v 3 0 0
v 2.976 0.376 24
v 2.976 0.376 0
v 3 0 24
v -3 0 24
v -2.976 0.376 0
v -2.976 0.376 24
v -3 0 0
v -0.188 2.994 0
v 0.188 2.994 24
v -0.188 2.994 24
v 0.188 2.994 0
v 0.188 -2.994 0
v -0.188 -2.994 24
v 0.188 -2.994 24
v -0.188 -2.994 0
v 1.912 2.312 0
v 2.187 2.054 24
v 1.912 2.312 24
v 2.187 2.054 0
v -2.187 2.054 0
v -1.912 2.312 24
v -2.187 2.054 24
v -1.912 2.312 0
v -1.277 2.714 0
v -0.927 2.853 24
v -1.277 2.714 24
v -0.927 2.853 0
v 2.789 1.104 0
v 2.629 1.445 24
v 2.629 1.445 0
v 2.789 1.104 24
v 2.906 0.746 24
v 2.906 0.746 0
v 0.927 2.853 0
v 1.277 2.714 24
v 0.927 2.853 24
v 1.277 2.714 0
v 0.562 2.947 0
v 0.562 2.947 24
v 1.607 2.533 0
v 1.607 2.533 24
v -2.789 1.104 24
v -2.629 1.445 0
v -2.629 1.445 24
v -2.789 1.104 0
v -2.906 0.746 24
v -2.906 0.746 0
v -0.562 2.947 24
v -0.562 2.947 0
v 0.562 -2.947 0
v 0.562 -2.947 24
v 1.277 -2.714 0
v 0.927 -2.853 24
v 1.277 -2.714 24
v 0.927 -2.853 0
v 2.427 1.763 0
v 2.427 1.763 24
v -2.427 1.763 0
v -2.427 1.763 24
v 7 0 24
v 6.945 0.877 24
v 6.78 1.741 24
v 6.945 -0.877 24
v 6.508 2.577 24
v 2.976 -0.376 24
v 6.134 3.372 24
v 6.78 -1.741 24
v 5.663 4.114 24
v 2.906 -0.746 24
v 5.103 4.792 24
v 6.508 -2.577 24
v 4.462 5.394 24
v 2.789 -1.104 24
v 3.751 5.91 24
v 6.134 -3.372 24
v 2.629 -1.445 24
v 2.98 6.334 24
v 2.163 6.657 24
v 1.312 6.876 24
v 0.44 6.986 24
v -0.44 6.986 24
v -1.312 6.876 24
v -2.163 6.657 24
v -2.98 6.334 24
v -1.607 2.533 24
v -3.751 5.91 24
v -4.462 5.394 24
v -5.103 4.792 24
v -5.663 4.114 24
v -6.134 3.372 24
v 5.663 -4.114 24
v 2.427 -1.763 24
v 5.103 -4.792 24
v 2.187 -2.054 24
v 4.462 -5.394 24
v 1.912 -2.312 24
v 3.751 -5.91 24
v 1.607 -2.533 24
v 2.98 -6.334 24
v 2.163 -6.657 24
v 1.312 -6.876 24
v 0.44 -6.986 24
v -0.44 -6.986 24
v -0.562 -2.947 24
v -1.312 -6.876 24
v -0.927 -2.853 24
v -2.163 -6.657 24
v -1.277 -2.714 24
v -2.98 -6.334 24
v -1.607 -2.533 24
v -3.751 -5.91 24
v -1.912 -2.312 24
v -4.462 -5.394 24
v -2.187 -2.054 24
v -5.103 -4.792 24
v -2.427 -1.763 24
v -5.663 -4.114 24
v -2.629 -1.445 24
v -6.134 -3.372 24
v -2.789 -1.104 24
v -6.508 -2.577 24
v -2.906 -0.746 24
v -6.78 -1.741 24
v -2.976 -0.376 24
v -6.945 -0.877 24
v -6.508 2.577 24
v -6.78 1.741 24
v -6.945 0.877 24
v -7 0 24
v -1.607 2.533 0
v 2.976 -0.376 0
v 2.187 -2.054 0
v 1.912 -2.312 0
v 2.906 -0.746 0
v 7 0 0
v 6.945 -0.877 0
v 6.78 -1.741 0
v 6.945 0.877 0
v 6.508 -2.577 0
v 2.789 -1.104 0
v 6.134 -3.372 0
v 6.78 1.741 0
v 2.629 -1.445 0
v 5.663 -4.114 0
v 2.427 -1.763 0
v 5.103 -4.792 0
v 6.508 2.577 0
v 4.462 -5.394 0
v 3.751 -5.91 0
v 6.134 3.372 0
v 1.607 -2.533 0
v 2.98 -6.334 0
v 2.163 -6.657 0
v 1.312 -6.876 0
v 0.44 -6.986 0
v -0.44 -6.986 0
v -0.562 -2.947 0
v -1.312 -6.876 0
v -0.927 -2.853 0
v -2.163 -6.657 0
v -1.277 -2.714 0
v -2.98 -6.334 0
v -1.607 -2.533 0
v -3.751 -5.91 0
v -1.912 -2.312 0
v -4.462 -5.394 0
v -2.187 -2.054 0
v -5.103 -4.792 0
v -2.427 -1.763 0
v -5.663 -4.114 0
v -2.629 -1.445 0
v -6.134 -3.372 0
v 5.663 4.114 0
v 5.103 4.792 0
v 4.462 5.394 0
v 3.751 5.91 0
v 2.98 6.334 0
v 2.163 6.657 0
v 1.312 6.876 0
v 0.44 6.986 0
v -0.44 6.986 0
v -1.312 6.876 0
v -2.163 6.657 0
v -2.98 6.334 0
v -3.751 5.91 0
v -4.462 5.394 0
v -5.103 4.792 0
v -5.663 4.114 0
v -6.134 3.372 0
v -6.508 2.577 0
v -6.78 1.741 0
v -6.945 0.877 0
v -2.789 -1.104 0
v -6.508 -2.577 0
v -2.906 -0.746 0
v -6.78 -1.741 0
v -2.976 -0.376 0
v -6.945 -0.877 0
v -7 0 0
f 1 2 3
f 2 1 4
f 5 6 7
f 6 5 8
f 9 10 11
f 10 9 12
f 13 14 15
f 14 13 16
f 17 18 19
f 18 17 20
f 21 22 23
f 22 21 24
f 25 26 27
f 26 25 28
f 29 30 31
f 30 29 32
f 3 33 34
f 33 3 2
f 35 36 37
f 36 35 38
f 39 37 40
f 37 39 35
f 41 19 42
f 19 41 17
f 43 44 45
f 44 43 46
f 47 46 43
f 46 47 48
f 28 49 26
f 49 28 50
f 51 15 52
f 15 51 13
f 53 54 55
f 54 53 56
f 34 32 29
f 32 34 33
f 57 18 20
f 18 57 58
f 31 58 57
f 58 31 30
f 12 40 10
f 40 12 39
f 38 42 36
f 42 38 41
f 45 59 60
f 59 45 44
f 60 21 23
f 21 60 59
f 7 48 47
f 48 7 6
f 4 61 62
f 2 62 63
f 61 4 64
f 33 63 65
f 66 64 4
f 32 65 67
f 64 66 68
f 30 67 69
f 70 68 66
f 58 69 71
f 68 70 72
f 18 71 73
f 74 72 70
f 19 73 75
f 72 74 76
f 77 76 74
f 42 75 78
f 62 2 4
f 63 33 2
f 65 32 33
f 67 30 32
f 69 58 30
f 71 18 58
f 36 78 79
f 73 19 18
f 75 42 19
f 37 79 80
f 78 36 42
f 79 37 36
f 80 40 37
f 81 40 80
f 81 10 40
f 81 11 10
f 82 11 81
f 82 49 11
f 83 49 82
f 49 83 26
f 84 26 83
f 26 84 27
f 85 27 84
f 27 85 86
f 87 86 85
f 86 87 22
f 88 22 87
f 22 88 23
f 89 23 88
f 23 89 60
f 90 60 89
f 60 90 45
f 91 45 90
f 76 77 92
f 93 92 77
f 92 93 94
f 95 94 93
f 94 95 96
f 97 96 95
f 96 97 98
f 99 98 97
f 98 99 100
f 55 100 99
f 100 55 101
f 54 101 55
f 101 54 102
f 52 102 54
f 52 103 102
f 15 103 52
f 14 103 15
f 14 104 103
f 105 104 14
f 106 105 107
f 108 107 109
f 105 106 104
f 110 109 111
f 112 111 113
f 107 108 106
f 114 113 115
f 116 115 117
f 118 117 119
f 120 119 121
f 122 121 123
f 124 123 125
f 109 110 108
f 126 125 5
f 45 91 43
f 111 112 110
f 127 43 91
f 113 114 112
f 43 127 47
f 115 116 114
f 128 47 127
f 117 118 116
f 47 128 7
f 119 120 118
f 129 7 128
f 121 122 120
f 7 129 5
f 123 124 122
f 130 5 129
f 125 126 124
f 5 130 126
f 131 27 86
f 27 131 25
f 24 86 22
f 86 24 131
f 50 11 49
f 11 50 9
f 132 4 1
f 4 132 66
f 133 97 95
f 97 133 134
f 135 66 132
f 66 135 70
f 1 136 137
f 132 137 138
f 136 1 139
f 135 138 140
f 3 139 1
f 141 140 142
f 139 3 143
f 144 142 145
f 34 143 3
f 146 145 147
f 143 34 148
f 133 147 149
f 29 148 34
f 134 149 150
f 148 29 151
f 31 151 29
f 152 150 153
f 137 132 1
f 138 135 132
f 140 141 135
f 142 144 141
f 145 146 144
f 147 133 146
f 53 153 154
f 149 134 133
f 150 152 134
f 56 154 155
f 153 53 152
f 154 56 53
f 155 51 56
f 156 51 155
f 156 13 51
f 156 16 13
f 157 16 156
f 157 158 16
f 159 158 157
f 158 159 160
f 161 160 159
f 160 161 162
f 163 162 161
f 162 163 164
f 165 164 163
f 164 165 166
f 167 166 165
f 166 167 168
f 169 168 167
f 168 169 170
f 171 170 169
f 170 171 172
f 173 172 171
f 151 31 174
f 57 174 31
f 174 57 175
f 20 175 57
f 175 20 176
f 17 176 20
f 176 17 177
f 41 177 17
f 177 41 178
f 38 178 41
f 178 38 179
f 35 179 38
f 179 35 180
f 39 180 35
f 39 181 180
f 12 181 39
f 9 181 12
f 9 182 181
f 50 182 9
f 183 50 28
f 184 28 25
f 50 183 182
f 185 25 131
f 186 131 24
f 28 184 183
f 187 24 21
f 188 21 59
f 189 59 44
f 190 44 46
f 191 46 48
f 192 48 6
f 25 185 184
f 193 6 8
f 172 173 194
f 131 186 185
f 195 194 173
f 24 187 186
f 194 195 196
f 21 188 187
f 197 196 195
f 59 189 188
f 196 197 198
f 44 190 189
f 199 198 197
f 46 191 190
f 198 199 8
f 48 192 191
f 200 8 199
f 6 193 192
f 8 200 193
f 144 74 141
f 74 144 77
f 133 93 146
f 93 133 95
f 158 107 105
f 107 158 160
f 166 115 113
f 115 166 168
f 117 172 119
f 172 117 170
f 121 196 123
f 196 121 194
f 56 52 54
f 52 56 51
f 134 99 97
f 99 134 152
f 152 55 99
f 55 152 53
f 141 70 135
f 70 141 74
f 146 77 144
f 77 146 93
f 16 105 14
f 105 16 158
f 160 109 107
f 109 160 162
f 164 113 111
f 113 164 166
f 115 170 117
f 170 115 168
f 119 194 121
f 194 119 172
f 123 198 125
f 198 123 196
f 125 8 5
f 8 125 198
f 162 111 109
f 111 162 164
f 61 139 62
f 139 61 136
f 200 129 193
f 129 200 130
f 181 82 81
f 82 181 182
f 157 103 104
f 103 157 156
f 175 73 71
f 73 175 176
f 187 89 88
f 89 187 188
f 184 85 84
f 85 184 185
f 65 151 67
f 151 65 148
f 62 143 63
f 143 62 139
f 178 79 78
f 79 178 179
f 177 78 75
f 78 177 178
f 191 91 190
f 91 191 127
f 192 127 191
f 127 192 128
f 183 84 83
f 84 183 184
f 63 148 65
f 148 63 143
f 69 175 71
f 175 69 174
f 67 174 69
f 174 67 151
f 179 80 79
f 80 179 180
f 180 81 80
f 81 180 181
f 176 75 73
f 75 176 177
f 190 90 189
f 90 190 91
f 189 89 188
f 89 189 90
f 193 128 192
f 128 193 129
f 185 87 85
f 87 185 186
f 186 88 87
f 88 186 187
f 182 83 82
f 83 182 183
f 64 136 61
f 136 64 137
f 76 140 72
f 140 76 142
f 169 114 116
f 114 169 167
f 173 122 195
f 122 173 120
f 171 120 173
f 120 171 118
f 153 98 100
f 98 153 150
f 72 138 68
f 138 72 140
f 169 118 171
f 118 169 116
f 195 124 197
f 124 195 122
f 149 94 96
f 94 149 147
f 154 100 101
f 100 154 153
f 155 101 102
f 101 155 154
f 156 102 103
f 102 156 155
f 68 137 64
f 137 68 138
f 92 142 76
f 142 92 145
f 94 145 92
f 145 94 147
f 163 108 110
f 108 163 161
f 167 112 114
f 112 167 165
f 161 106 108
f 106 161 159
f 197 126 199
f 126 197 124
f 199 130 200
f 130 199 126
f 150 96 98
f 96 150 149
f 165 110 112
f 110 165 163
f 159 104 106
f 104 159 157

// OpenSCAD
$fn = 50;


difference() {
	union() {
		cylinder(h = 24, r = 7.0000000000);
	}
	union() {
		translate(v = [0, 0, -100]) {
			cylinder(h = 200, r = 3.0000000000);
		}
	}
}
